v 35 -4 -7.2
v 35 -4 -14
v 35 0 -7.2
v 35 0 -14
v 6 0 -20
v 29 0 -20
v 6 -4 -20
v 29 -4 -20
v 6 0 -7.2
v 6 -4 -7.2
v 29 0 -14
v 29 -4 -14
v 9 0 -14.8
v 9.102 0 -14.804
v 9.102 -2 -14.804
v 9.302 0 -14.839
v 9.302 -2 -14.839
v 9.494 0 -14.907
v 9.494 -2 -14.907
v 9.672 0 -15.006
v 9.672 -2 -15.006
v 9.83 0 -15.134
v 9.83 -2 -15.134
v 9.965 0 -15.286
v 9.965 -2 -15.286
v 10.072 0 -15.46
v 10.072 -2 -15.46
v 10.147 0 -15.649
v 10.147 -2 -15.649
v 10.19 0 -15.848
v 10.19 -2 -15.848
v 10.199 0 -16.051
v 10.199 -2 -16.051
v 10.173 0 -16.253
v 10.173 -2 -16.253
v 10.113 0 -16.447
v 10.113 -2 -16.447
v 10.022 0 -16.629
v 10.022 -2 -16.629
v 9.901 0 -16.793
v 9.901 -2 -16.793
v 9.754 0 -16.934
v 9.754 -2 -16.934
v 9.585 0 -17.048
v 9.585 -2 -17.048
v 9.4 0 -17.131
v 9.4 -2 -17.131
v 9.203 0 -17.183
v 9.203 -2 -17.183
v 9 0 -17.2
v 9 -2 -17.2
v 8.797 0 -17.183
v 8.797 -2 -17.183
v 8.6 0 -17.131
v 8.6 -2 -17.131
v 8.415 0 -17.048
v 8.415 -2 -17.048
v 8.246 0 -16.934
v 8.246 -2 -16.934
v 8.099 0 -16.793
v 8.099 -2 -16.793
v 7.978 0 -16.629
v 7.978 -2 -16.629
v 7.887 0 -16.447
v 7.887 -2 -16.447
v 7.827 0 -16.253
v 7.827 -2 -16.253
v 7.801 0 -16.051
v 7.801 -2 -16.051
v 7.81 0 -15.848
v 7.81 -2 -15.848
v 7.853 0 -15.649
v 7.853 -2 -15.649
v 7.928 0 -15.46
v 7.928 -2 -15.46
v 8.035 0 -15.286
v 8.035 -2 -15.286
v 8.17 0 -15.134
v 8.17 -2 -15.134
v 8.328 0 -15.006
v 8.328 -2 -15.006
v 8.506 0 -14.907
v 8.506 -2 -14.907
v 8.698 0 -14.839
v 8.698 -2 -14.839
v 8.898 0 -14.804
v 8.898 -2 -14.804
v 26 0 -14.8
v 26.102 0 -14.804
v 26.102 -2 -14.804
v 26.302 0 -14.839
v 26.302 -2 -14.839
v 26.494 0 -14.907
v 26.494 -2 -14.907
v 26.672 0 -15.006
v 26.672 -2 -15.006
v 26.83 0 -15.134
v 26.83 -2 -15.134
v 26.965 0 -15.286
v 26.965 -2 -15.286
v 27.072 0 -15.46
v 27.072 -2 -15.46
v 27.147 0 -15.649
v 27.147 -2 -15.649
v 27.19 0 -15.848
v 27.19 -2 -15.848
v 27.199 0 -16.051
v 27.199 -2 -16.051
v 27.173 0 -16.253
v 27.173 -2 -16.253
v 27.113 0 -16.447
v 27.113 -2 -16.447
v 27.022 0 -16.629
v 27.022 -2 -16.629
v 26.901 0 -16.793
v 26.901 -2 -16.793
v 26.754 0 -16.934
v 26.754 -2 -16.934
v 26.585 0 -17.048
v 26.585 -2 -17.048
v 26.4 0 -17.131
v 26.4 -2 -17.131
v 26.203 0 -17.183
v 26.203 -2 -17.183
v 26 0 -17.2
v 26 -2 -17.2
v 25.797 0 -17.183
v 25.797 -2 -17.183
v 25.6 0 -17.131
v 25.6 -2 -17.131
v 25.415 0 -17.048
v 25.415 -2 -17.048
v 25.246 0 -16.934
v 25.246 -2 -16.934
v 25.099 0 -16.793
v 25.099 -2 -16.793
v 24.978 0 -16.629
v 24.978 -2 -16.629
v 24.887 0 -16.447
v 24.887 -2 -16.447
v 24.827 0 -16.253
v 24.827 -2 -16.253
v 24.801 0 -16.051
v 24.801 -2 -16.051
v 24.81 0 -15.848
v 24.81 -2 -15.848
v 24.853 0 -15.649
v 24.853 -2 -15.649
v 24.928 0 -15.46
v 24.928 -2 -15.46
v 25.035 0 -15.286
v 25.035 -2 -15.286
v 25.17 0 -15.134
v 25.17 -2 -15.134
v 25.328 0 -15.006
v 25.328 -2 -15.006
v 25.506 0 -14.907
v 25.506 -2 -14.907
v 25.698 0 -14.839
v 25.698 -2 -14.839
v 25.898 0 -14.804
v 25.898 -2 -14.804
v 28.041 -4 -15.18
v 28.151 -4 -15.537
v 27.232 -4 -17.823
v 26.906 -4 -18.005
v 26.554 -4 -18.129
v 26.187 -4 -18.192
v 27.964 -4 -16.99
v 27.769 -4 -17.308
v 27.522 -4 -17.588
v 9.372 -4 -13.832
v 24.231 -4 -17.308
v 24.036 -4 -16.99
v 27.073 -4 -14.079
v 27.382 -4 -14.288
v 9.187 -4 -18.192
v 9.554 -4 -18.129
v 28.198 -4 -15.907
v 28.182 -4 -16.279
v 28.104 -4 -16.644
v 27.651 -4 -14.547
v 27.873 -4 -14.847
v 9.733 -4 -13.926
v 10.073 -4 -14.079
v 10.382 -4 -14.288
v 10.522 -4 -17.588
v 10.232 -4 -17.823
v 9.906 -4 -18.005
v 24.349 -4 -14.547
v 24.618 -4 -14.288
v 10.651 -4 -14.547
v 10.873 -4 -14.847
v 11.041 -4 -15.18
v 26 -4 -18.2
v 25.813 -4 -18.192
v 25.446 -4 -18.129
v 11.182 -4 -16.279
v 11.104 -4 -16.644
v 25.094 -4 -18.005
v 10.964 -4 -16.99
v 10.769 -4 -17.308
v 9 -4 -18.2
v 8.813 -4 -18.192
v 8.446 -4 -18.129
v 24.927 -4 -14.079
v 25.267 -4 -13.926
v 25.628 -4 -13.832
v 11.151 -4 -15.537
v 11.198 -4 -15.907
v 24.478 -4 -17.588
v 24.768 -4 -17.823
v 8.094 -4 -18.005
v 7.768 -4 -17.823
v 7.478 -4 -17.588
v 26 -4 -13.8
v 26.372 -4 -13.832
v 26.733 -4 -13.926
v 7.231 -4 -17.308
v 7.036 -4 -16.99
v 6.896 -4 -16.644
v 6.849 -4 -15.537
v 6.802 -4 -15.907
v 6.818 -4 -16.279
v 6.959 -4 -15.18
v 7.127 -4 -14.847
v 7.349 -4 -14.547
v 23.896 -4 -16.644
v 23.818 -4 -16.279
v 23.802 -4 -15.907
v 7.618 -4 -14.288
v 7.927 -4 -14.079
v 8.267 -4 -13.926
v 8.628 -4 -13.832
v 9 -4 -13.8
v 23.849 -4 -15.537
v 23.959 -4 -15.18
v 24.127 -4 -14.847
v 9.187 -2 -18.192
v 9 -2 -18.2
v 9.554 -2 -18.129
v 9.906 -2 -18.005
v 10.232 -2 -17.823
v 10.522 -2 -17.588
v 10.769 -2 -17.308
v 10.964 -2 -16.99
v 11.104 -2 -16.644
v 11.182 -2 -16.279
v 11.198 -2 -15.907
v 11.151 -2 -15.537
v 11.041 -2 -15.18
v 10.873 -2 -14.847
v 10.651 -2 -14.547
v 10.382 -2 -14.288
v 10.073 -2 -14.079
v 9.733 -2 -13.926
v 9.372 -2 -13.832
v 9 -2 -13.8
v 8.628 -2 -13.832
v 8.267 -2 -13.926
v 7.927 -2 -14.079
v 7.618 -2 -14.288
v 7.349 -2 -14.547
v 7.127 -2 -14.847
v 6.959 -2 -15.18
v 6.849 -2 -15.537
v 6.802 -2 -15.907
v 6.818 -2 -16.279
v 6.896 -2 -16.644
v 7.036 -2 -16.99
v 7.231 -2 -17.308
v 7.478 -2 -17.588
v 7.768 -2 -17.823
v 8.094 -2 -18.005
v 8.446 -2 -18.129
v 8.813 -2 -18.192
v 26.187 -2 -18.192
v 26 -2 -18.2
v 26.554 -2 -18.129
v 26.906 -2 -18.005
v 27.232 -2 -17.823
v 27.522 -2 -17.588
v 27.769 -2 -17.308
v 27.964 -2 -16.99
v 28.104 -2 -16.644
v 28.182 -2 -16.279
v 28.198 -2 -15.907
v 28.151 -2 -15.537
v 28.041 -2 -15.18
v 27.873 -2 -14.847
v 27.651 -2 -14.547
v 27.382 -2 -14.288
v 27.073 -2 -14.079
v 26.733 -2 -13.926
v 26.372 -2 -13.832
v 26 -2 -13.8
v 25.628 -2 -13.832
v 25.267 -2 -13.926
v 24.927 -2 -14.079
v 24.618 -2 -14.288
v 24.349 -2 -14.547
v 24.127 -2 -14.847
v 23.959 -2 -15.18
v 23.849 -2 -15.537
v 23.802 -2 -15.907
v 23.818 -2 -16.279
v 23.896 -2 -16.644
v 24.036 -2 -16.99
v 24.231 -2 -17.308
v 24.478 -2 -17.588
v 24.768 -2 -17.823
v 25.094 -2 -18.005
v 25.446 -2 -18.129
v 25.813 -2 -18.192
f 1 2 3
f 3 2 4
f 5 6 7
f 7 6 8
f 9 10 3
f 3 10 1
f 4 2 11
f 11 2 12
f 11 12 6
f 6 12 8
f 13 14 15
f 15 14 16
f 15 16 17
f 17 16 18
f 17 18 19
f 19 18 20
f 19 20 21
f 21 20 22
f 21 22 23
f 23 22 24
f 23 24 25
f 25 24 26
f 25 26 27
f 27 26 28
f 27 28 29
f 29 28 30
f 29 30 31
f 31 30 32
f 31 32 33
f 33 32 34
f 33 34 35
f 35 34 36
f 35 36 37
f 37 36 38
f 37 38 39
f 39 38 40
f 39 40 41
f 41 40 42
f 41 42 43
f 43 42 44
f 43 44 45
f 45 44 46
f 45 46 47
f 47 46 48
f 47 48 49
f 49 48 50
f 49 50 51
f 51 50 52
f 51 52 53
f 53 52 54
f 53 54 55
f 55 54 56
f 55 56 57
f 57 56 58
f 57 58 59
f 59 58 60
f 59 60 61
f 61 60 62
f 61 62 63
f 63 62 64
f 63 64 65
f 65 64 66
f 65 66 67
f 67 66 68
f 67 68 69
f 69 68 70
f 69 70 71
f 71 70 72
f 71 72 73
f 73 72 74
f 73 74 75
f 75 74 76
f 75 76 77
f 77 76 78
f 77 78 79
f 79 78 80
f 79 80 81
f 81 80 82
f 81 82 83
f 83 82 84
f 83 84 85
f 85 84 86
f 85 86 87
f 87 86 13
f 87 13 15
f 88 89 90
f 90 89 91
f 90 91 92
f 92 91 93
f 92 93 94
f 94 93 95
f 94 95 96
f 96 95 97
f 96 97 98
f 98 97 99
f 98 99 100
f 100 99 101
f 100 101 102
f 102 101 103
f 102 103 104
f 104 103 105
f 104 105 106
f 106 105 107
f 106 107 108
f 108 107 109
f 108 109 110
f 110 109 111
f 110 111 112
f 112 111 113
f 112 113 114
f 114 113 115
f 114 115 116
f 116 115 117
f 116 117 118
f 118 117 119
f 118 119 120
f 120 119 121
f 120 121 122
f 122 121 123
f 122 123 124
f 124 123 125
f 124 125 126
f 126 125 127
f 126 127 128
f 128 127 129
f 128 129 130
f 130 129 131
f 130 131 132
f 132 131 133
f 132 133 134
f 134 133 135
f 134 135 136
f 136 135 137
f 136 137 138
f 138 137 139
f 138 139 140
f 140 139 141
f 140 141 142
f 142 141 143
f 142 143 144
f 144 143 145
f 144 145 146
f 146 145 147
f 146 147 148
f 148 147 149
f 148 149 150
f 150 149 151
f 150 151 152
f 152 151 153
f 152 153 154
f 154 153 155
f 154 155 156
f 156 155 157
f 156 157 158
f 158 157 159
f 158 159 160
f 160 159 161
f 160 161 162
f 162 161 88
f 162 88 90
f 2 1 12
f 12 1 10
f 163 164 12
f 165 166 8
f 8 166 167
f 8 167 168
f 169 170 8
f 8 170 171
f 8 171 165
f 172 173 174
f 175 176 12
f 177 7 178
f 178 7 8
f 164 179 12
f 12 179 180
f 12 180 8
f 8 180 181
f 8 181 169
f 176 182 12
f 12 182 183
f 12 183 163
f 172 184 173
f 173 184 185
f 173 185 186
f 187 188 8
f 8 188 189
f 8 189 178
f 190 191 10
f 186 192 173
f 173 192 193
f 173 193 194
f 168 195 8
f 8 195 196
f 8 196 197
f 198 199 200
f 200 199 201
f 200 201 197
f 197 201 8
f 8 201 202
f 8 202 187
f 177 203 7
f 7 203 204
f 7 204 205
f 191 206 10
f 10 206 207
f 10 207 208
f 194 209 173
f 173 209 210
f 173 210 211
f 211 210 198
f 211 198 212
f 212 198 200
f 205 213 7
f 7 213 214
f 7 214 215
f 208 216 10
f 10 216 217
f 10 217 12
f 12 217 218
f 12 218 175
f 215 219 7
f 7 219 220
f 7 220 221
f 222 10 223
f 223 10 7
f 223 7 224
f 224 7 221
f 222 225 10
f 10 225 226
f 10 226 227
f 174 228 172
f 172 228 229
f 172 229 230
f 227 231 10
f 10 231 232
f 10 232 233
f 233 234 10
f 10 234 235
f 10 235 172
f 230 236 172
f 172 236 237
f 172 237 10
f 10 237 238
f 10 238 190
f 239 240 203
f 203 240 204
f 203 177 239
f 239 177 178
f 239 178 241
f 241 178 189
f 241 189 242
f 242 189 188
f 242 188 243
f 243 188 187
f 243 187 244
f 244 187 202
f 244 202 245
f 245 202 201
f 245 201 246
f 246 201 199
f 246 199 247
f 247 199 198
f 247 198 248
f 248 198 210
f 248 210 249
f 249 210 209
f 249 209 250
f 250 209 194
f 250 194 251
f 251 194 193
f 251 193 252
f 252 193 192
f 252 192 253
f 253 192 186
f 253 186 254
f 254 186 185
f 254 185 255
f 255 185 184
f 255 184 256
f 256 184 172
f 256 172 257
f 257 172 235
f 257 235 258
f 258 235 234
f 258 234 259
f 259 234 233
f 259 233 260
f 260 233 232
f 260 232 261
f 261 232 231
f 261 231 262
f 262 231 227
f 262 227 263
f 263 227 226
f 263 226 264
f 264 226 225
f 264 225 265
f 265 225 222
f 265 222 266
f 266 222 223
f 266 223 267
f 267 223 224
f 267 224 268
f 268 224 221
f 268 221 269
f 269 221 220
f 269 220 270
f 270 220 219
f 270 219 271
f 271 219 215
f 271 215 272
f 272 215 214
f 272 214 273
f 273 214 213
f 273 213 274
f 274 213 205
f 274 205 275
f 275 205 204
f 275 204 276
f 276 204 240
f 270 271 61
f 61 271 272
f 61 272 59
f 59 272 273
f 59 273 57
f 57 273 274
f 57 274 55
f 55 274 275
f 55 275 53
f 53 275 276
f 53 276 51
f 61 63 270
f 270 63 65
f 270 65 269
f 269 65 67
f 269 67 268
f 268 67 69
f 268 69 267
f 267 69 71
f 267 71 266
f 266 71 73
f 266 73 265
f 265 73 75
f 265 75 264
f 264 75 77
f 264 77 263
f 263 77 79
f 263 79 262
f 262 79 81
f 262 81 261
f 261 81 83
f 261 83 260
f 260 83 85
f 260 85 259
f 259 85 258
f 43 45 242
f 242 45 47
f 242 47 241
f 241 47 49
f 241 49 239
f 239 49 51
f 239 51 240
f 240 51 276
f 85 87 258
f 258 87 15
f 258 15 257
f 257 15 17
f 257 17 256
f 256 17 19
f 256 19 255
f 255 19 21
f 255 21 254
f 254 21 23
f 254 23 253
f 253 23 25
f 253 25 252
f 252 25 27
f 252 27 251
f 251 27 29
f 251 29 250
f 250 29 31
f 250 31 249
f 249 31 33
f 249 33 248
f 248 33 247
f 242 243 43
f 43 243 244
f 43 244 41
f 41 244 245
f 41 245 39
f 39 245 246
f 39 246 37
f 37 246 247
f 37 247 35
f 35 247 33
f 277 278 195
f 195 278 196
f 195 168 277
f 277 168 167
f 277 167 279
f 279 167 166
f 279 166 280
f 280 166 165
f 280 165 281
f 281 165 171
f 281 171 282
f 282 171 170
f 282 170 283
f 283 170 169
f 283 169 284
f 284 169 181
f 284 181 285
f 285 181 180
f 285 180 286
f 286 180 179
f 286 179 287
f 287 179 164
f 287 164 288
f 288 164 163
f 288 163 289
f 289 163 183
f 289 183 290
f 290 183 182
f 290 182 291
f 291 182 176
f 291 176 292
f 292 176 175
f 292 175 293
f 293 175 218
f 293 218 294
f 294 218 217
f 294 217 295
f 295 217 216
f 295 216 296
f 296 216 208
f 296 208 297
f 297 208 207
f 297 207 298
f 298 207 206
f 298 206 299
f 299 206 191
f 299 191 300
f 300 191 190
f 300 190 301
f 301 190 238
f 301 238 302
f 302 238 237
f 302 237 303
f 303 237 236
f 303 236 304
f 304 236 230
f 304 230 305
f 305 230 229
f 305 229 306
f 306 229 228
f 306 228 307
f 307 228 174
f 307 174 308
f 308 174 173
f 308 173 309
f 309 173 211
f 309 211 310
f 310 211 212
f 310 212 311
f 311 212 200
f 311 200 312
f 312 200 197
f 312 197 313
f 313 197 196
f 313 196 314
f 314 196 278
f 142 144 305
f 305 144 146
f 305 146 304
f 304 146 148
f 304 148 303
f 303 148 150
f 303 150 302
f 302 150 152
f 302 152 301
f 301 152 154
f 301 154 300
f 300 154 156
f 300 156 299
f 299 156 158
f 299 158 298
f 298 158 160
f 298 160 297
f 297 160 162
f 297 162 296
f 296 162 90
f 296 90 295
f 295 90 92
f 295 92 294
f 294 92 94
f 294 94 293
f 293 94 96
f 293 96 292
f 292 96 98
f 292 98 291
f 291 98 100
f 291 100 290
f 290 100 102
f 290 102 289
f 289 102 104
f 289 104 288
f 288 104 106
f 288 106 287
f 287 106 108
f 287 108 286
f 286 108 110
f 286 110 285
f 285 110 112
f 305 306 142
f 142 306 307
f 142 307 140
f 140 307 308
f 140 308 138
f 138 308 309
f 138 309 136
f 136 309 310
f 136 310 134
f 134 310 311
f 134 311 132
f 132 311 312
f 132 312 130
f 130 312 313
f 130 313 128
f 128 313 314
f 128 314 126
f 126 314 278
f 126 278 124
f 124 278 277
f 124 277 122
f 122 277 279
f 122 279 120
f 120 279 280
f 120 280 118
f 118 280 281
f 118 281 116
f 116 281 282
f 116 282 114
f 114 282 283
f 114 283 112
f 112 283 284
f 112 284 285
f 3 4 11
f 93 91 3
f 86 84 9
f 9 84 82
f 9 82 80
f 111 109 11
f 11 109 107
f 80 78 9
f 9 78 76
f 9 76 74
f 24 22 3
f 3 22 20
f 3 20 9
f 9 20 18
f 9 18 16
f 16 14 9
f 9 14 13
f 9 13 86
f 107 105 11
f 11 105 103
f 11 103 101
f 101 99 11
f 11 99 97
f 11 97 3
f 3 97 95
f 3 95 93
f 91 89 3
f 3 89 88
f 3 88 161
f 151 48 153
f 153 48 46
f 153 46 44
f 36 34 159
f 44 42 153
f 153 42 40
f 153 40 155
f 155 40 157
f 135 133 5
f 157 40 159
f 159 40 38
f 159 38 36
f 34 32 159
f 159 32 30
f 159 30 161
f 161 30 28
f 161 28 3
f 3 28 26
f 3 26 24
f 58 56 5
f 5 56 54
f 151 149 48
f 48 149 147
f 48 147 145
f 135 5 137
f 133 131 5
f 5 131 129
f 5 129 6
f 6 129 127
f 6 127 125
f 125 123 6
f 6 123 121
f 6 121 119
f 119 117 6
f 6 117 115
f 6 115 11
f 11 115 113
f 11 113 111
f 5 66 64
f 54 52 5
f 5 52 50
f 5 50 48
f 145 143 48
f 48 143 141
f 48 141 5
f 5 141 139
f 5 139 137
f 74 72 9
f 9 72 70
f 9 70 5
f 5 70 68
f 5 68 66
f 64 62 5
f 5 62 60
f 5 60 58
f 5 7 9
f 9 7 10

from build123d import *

# Parameters (mm, degrees)
SKETCH_1_W           = 35
SKETCH_1_H           = 20
EXTRUDE_1_DEPTH      = 4
SKETCH_3_W           = 29
SKETCH_3_H           = 7.2
CUT_EXTRUDE_4_DEPTH  = 5
SKETCH_4_W           = 6
SKETCH_4_H           = 6
CUT_EXTRUDE_5_DEPTH  = 5
SKETCH_5_R           = 1.2
CUT_EXTRUDE_6_DEPTH  = 41.509258201
SKETCH_6_R           = 2.2
CUT_EXTRUDE_7_DEPTH  = 2
CUT_EXTRUDE_START    = 4
SKETCH_7_R           = 2.2
CUT_EXTRUDE_8_DEPTH  = 2
SKETCH_8_W           = 40.267995894
SKETCH_8_H           = 24.754572762
CUT_EXTRUDE_9_DEPTH  = 41.509258201
SKETCH_11_W          = 6
SKETCH_11_H          = 20
CUT_EXTRUDE_11_DEPTH = 41.509258201


with BuildPart() as part:
    # 草圖1 → 填料-伸長1 (new body)
    with BuildSketch(Plane(origin=(0, 0, 0), x_dir=(1, 0, 0), z_dir=(0, 1, 0))):
        with Locations((17.5, 10)):
            Rectangle(SKETCH_1_W, SKETCH_1_H)
    extrude_1 = extrude(amount=EXTRUDE_1_DEPTH)

    # 草圖3 → 除料-伸長4 (cut)
    with BuildSketch(Plane(origin=(0, 0, 0), x_dir=(1, 0, 0), z_dir=(0, 1, 0))):
        with Locations((20.5, 3.6)):
            Rectangle(SKETCH_3_W, SKETCH_3_H)
    cut_extrude_4 = extrude(amount=CUT_EXTRUDE_4_DEPTH, mode=Mode.SUBTRACT)

    # 草圖4 → 除料-伸長5 (cut)
    with BuildSketch(Plane(origin=(0, 0, 0), x_dir=(1, 0, 0), z_dir=(0, 1, 0))):
        with Locations((32, 17)):
            Rectangle(SKETCH_4_W, SKETCH_4_H)
    cut_extrude_5 = extrude(amount=CUT_EXTRUDE_5_DEPTH, mode=Mode.SUBTRACT)

    # 草圖5 → 除料-伸長6 (cut, through all)
    with BuildSketch(Plane(origin=(0, 0, 0), x_dir=(1, 0, 0), z_dir=(0, 1, 0))):
        with Locations(Location((3, 16, 0), (0, 0, 270))):
            Circle(SKETCH_5_R)
        with Locations(Location((3, 4, 0), (0, 0, 270))):
            Circle(SKETCH_5_R)
        with Locations(Location((9, 16, 0), (0, 0, 270))):
            Circle(SKETCH_5_R)
        with Locations(Location((26, 16, 0), (0, 0, 270))):
            Circle(SKETCH_5_R)
    cut_extrude_6 = extrude(amount=CUT_EXTRUDE_6_DEPTH, mode=Mode.SUBTRACT)

    # 草圖6 → 除料-伸長7 (cut)
    with BuildSketch(Plane(origin=(0, 0, 0), x_dir=(1, 0, 0), z_dir=(0, 1, 0))):
        with Locations(Location((3, 16, 0), (0, 0, 270))):
            Circle(SKETCH_6_R)
        with Locations(Location((3, 4, 0), (0, 0, 270))):
            Circle(SKETCH_6_R)
    cut_extrude_7 = extrude(amount=CUT_EXTRUDE_7_DEPTH, mode=Mode.SUBTRACT)

    # 草圖7 → 除料-伸長8 (cut)
    with BuildSketch(Plane(origin=(0, 0, 0), x_dir=(1, 0, 0), z_dir=(0, 1, 0)).offset(CUT_EXTRUDE_START)):
        with Locations(Location((9, 16, 0), (0, 0, 90))):
            Circle(SKETCH_7_R)
        with Locations(Location((26, 16, 0), (0, 0, 90))):
            Circle(SKETCH_7_R)
    cut_extrude_8 = extrude(amount=-CUT_EXTRUDE_8_DEPTH, mode=Mode.SUBTRACT)

    # 鏡射1: 填料-伸長1, 除料-伸長4, 除料-伸長5, 除料-伸長6, 除料-伸長7, 除料-伸長8 across plane
    add(extrude_1.mirror(Plane.ZX))
    add(cut_extrude_4.mirror(Plane.ZX), mode=Mode.SUBTRACT)
    add(cut_extrude_5.mirror(Plane.ZX), mode=Mode.SUBTRACT)
    add(cut_extrude_6.mirror(Plane.ZX), mode=Mode.SUBTRACT)
    add(cut_extrude_7.mirror(Plane.ZX), mode=Mode.SUBTRACT)
    add(cut_extrude_8.mirror(Plane.ZX), mode=Mode.SUBTRACT)

    # 草圖8 → 除料-伸長9 (cut, through all)
    with BuildSketch(Plane(origin=(0, 0, 0), x_dir=(1, 0, 0), z_dir=(0, 1, 0))):
        with Locations((18.825302285, 8.624835494)):
            Rectangle(SKETCH_8_W, SKETCH_8_H)
    extrude(amount=CUT_EXTRUDE_9_DEPTH, mode=Mode.SUBTRACT)

    # 草圖11 → 除料-伸長11 (cut, through all)
    with BuildSketch(Plane(origin=(0, 0, 0), x_dir=(1, 0, 0), z_dir=(0, 1, 0))):
        with Locations((3, 10)):
            Rectangle(SKETCH_11_W, SKETCH_11_H)
    extrude(amount=-CUT_EXTRUDE_11_DEPTH, mode=Mode.SUBTRACT)


solid = part.part
